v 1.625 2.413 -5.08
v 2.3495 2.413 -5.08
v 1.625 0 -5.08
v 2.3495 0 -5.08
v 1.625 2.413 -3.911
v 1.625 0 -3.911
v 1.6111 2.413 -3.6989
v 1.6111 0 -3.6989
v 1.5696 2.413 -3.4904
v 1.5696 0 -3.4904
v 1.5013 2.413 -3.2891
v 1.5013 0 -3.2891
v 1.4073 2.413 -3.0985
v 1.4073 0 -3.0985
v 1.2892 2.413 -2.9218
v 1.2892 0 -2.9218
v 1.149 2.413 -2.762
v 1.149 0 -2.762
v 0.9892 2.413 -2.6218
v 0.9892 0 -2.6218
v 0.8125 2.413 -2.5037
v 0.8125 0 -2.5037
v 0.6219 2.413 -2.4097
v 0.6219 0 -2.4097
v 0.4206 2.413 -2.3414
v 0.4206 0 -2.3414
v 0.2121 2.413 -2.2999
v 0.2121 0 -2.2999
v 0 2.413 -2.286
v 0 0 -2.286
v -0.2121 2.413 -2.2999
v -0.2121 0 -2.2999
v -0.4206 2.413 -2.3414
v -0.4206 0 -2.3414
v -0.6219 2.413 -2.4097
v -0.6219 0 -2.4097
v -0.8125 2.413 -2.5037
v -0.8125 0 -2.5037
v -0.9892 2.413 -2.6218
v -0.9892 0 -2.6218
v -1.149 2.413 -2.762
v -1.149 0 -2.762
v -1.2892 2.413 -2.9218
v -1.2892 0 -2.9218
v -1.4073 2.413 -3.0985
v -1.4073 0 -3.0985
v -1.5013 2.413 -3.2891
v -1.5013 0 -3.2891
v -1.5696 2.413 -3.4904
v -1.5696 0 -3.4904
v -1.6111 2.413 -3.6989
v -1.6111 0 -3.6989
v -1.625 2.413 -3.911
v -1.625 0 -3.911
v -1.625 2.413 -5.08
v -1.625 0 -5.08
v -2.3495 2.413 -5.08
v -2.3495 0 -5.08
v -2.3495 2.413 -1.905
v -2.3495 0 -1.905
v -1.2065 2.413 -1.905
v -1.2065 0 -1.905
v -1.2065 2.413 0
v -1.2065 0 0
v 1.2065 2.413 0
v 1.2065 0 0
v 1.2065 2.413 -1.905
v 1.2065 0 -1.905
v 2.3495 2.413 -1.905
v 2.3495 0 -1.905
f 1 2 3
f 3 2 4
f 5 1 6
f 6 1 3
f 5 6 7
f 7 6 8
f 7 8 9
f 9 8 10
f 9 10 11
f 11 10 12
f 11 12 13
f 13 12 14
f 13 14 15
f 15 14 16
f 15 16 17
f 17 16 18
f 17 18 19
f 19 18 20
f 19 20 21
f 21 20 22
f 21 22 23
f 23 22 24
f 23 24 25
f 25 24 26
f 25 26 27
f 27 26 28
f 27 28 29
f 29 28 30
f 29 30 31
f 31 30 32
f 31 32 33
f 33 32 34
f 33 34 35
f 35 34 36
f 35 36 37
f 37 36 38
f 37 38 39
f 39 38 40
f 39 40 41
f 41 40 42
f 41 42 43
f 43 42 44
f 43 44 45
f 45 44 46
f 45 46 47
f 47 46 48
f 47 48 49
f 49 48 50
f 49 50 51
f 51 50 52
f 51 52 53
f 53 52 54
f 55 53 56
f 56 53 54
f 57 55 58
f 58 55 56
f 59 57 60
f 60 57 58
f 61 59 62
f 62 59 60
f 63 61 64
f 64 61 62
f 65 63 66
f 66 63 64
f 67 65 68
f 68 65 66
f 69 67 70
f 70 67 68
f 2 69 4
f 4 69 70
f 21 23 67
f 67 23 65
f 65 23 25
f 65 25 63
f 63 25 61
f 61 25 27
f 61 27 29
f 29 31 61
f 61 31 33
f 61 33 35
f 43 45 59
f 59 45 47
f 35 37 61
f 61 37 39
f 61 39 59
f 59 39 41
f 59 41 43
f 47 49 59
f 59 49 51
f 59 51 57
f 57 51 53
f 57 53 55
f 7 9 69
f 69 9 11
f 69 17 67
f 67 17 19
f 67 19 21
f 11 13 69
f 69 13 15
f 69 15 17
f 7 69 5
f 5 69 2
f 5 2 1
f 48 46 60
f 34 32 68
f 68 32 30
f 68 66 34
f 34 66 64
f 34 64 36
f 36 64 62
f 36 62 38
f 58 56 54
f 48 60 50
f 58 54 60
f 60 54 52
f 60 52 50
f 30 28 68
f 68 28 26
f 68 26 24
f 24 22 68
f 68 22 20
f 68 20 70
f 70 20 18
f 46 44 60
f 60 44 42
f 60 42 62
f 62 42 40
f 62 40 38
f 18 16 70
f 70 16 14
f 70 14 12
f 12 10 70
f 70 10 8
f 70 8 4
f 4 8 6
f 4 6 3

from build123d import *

# Parameters (mm, degrees)
BOSS_EXTRUDE1_DEPTH = 2.413


with BuildPart() as part:
    # Sketch1 → Boss-Extrude1 (new body)
    with BuildSketch(Plane(origin=(0, 0, 0), x_dir=(1, 0, 0), z_dir=(0, 1, 0))):
        with BuildLine():
            Line((1.2065, 0), (-1.2065, 0))
            Line((-1.2065, 0), (-1.2065, 1.905))
            Line((-1.2065, 1.905), (-2.3495, 1.905))
            Line((-2.3495, 1.905), (-2.3495, 5.08))
            Line((-2.3495, 5.08), (-1.625, 5.08))
            Line((-1.625, 5.08), (-1.625, 3.911))
            ThreePointArc((-1.625, 3.911), (0, 2.286), (1.625, 3.911))
            Line((1.625, 3.911), (1.625, 5.08))
            Line((1.625, 5.08), (2.3495, 5.08))
            Line((2.3495, 5.08), (2.3495, 1.905))
            Line((2.3495, 1.905), (1.2065, 1.905))
            Line((1.2065, 1.905), (1.2065, 0))
        make_face()
    extrude(amount=BOSS_EXTRUDE1_DEPTH)


solid = part.part
